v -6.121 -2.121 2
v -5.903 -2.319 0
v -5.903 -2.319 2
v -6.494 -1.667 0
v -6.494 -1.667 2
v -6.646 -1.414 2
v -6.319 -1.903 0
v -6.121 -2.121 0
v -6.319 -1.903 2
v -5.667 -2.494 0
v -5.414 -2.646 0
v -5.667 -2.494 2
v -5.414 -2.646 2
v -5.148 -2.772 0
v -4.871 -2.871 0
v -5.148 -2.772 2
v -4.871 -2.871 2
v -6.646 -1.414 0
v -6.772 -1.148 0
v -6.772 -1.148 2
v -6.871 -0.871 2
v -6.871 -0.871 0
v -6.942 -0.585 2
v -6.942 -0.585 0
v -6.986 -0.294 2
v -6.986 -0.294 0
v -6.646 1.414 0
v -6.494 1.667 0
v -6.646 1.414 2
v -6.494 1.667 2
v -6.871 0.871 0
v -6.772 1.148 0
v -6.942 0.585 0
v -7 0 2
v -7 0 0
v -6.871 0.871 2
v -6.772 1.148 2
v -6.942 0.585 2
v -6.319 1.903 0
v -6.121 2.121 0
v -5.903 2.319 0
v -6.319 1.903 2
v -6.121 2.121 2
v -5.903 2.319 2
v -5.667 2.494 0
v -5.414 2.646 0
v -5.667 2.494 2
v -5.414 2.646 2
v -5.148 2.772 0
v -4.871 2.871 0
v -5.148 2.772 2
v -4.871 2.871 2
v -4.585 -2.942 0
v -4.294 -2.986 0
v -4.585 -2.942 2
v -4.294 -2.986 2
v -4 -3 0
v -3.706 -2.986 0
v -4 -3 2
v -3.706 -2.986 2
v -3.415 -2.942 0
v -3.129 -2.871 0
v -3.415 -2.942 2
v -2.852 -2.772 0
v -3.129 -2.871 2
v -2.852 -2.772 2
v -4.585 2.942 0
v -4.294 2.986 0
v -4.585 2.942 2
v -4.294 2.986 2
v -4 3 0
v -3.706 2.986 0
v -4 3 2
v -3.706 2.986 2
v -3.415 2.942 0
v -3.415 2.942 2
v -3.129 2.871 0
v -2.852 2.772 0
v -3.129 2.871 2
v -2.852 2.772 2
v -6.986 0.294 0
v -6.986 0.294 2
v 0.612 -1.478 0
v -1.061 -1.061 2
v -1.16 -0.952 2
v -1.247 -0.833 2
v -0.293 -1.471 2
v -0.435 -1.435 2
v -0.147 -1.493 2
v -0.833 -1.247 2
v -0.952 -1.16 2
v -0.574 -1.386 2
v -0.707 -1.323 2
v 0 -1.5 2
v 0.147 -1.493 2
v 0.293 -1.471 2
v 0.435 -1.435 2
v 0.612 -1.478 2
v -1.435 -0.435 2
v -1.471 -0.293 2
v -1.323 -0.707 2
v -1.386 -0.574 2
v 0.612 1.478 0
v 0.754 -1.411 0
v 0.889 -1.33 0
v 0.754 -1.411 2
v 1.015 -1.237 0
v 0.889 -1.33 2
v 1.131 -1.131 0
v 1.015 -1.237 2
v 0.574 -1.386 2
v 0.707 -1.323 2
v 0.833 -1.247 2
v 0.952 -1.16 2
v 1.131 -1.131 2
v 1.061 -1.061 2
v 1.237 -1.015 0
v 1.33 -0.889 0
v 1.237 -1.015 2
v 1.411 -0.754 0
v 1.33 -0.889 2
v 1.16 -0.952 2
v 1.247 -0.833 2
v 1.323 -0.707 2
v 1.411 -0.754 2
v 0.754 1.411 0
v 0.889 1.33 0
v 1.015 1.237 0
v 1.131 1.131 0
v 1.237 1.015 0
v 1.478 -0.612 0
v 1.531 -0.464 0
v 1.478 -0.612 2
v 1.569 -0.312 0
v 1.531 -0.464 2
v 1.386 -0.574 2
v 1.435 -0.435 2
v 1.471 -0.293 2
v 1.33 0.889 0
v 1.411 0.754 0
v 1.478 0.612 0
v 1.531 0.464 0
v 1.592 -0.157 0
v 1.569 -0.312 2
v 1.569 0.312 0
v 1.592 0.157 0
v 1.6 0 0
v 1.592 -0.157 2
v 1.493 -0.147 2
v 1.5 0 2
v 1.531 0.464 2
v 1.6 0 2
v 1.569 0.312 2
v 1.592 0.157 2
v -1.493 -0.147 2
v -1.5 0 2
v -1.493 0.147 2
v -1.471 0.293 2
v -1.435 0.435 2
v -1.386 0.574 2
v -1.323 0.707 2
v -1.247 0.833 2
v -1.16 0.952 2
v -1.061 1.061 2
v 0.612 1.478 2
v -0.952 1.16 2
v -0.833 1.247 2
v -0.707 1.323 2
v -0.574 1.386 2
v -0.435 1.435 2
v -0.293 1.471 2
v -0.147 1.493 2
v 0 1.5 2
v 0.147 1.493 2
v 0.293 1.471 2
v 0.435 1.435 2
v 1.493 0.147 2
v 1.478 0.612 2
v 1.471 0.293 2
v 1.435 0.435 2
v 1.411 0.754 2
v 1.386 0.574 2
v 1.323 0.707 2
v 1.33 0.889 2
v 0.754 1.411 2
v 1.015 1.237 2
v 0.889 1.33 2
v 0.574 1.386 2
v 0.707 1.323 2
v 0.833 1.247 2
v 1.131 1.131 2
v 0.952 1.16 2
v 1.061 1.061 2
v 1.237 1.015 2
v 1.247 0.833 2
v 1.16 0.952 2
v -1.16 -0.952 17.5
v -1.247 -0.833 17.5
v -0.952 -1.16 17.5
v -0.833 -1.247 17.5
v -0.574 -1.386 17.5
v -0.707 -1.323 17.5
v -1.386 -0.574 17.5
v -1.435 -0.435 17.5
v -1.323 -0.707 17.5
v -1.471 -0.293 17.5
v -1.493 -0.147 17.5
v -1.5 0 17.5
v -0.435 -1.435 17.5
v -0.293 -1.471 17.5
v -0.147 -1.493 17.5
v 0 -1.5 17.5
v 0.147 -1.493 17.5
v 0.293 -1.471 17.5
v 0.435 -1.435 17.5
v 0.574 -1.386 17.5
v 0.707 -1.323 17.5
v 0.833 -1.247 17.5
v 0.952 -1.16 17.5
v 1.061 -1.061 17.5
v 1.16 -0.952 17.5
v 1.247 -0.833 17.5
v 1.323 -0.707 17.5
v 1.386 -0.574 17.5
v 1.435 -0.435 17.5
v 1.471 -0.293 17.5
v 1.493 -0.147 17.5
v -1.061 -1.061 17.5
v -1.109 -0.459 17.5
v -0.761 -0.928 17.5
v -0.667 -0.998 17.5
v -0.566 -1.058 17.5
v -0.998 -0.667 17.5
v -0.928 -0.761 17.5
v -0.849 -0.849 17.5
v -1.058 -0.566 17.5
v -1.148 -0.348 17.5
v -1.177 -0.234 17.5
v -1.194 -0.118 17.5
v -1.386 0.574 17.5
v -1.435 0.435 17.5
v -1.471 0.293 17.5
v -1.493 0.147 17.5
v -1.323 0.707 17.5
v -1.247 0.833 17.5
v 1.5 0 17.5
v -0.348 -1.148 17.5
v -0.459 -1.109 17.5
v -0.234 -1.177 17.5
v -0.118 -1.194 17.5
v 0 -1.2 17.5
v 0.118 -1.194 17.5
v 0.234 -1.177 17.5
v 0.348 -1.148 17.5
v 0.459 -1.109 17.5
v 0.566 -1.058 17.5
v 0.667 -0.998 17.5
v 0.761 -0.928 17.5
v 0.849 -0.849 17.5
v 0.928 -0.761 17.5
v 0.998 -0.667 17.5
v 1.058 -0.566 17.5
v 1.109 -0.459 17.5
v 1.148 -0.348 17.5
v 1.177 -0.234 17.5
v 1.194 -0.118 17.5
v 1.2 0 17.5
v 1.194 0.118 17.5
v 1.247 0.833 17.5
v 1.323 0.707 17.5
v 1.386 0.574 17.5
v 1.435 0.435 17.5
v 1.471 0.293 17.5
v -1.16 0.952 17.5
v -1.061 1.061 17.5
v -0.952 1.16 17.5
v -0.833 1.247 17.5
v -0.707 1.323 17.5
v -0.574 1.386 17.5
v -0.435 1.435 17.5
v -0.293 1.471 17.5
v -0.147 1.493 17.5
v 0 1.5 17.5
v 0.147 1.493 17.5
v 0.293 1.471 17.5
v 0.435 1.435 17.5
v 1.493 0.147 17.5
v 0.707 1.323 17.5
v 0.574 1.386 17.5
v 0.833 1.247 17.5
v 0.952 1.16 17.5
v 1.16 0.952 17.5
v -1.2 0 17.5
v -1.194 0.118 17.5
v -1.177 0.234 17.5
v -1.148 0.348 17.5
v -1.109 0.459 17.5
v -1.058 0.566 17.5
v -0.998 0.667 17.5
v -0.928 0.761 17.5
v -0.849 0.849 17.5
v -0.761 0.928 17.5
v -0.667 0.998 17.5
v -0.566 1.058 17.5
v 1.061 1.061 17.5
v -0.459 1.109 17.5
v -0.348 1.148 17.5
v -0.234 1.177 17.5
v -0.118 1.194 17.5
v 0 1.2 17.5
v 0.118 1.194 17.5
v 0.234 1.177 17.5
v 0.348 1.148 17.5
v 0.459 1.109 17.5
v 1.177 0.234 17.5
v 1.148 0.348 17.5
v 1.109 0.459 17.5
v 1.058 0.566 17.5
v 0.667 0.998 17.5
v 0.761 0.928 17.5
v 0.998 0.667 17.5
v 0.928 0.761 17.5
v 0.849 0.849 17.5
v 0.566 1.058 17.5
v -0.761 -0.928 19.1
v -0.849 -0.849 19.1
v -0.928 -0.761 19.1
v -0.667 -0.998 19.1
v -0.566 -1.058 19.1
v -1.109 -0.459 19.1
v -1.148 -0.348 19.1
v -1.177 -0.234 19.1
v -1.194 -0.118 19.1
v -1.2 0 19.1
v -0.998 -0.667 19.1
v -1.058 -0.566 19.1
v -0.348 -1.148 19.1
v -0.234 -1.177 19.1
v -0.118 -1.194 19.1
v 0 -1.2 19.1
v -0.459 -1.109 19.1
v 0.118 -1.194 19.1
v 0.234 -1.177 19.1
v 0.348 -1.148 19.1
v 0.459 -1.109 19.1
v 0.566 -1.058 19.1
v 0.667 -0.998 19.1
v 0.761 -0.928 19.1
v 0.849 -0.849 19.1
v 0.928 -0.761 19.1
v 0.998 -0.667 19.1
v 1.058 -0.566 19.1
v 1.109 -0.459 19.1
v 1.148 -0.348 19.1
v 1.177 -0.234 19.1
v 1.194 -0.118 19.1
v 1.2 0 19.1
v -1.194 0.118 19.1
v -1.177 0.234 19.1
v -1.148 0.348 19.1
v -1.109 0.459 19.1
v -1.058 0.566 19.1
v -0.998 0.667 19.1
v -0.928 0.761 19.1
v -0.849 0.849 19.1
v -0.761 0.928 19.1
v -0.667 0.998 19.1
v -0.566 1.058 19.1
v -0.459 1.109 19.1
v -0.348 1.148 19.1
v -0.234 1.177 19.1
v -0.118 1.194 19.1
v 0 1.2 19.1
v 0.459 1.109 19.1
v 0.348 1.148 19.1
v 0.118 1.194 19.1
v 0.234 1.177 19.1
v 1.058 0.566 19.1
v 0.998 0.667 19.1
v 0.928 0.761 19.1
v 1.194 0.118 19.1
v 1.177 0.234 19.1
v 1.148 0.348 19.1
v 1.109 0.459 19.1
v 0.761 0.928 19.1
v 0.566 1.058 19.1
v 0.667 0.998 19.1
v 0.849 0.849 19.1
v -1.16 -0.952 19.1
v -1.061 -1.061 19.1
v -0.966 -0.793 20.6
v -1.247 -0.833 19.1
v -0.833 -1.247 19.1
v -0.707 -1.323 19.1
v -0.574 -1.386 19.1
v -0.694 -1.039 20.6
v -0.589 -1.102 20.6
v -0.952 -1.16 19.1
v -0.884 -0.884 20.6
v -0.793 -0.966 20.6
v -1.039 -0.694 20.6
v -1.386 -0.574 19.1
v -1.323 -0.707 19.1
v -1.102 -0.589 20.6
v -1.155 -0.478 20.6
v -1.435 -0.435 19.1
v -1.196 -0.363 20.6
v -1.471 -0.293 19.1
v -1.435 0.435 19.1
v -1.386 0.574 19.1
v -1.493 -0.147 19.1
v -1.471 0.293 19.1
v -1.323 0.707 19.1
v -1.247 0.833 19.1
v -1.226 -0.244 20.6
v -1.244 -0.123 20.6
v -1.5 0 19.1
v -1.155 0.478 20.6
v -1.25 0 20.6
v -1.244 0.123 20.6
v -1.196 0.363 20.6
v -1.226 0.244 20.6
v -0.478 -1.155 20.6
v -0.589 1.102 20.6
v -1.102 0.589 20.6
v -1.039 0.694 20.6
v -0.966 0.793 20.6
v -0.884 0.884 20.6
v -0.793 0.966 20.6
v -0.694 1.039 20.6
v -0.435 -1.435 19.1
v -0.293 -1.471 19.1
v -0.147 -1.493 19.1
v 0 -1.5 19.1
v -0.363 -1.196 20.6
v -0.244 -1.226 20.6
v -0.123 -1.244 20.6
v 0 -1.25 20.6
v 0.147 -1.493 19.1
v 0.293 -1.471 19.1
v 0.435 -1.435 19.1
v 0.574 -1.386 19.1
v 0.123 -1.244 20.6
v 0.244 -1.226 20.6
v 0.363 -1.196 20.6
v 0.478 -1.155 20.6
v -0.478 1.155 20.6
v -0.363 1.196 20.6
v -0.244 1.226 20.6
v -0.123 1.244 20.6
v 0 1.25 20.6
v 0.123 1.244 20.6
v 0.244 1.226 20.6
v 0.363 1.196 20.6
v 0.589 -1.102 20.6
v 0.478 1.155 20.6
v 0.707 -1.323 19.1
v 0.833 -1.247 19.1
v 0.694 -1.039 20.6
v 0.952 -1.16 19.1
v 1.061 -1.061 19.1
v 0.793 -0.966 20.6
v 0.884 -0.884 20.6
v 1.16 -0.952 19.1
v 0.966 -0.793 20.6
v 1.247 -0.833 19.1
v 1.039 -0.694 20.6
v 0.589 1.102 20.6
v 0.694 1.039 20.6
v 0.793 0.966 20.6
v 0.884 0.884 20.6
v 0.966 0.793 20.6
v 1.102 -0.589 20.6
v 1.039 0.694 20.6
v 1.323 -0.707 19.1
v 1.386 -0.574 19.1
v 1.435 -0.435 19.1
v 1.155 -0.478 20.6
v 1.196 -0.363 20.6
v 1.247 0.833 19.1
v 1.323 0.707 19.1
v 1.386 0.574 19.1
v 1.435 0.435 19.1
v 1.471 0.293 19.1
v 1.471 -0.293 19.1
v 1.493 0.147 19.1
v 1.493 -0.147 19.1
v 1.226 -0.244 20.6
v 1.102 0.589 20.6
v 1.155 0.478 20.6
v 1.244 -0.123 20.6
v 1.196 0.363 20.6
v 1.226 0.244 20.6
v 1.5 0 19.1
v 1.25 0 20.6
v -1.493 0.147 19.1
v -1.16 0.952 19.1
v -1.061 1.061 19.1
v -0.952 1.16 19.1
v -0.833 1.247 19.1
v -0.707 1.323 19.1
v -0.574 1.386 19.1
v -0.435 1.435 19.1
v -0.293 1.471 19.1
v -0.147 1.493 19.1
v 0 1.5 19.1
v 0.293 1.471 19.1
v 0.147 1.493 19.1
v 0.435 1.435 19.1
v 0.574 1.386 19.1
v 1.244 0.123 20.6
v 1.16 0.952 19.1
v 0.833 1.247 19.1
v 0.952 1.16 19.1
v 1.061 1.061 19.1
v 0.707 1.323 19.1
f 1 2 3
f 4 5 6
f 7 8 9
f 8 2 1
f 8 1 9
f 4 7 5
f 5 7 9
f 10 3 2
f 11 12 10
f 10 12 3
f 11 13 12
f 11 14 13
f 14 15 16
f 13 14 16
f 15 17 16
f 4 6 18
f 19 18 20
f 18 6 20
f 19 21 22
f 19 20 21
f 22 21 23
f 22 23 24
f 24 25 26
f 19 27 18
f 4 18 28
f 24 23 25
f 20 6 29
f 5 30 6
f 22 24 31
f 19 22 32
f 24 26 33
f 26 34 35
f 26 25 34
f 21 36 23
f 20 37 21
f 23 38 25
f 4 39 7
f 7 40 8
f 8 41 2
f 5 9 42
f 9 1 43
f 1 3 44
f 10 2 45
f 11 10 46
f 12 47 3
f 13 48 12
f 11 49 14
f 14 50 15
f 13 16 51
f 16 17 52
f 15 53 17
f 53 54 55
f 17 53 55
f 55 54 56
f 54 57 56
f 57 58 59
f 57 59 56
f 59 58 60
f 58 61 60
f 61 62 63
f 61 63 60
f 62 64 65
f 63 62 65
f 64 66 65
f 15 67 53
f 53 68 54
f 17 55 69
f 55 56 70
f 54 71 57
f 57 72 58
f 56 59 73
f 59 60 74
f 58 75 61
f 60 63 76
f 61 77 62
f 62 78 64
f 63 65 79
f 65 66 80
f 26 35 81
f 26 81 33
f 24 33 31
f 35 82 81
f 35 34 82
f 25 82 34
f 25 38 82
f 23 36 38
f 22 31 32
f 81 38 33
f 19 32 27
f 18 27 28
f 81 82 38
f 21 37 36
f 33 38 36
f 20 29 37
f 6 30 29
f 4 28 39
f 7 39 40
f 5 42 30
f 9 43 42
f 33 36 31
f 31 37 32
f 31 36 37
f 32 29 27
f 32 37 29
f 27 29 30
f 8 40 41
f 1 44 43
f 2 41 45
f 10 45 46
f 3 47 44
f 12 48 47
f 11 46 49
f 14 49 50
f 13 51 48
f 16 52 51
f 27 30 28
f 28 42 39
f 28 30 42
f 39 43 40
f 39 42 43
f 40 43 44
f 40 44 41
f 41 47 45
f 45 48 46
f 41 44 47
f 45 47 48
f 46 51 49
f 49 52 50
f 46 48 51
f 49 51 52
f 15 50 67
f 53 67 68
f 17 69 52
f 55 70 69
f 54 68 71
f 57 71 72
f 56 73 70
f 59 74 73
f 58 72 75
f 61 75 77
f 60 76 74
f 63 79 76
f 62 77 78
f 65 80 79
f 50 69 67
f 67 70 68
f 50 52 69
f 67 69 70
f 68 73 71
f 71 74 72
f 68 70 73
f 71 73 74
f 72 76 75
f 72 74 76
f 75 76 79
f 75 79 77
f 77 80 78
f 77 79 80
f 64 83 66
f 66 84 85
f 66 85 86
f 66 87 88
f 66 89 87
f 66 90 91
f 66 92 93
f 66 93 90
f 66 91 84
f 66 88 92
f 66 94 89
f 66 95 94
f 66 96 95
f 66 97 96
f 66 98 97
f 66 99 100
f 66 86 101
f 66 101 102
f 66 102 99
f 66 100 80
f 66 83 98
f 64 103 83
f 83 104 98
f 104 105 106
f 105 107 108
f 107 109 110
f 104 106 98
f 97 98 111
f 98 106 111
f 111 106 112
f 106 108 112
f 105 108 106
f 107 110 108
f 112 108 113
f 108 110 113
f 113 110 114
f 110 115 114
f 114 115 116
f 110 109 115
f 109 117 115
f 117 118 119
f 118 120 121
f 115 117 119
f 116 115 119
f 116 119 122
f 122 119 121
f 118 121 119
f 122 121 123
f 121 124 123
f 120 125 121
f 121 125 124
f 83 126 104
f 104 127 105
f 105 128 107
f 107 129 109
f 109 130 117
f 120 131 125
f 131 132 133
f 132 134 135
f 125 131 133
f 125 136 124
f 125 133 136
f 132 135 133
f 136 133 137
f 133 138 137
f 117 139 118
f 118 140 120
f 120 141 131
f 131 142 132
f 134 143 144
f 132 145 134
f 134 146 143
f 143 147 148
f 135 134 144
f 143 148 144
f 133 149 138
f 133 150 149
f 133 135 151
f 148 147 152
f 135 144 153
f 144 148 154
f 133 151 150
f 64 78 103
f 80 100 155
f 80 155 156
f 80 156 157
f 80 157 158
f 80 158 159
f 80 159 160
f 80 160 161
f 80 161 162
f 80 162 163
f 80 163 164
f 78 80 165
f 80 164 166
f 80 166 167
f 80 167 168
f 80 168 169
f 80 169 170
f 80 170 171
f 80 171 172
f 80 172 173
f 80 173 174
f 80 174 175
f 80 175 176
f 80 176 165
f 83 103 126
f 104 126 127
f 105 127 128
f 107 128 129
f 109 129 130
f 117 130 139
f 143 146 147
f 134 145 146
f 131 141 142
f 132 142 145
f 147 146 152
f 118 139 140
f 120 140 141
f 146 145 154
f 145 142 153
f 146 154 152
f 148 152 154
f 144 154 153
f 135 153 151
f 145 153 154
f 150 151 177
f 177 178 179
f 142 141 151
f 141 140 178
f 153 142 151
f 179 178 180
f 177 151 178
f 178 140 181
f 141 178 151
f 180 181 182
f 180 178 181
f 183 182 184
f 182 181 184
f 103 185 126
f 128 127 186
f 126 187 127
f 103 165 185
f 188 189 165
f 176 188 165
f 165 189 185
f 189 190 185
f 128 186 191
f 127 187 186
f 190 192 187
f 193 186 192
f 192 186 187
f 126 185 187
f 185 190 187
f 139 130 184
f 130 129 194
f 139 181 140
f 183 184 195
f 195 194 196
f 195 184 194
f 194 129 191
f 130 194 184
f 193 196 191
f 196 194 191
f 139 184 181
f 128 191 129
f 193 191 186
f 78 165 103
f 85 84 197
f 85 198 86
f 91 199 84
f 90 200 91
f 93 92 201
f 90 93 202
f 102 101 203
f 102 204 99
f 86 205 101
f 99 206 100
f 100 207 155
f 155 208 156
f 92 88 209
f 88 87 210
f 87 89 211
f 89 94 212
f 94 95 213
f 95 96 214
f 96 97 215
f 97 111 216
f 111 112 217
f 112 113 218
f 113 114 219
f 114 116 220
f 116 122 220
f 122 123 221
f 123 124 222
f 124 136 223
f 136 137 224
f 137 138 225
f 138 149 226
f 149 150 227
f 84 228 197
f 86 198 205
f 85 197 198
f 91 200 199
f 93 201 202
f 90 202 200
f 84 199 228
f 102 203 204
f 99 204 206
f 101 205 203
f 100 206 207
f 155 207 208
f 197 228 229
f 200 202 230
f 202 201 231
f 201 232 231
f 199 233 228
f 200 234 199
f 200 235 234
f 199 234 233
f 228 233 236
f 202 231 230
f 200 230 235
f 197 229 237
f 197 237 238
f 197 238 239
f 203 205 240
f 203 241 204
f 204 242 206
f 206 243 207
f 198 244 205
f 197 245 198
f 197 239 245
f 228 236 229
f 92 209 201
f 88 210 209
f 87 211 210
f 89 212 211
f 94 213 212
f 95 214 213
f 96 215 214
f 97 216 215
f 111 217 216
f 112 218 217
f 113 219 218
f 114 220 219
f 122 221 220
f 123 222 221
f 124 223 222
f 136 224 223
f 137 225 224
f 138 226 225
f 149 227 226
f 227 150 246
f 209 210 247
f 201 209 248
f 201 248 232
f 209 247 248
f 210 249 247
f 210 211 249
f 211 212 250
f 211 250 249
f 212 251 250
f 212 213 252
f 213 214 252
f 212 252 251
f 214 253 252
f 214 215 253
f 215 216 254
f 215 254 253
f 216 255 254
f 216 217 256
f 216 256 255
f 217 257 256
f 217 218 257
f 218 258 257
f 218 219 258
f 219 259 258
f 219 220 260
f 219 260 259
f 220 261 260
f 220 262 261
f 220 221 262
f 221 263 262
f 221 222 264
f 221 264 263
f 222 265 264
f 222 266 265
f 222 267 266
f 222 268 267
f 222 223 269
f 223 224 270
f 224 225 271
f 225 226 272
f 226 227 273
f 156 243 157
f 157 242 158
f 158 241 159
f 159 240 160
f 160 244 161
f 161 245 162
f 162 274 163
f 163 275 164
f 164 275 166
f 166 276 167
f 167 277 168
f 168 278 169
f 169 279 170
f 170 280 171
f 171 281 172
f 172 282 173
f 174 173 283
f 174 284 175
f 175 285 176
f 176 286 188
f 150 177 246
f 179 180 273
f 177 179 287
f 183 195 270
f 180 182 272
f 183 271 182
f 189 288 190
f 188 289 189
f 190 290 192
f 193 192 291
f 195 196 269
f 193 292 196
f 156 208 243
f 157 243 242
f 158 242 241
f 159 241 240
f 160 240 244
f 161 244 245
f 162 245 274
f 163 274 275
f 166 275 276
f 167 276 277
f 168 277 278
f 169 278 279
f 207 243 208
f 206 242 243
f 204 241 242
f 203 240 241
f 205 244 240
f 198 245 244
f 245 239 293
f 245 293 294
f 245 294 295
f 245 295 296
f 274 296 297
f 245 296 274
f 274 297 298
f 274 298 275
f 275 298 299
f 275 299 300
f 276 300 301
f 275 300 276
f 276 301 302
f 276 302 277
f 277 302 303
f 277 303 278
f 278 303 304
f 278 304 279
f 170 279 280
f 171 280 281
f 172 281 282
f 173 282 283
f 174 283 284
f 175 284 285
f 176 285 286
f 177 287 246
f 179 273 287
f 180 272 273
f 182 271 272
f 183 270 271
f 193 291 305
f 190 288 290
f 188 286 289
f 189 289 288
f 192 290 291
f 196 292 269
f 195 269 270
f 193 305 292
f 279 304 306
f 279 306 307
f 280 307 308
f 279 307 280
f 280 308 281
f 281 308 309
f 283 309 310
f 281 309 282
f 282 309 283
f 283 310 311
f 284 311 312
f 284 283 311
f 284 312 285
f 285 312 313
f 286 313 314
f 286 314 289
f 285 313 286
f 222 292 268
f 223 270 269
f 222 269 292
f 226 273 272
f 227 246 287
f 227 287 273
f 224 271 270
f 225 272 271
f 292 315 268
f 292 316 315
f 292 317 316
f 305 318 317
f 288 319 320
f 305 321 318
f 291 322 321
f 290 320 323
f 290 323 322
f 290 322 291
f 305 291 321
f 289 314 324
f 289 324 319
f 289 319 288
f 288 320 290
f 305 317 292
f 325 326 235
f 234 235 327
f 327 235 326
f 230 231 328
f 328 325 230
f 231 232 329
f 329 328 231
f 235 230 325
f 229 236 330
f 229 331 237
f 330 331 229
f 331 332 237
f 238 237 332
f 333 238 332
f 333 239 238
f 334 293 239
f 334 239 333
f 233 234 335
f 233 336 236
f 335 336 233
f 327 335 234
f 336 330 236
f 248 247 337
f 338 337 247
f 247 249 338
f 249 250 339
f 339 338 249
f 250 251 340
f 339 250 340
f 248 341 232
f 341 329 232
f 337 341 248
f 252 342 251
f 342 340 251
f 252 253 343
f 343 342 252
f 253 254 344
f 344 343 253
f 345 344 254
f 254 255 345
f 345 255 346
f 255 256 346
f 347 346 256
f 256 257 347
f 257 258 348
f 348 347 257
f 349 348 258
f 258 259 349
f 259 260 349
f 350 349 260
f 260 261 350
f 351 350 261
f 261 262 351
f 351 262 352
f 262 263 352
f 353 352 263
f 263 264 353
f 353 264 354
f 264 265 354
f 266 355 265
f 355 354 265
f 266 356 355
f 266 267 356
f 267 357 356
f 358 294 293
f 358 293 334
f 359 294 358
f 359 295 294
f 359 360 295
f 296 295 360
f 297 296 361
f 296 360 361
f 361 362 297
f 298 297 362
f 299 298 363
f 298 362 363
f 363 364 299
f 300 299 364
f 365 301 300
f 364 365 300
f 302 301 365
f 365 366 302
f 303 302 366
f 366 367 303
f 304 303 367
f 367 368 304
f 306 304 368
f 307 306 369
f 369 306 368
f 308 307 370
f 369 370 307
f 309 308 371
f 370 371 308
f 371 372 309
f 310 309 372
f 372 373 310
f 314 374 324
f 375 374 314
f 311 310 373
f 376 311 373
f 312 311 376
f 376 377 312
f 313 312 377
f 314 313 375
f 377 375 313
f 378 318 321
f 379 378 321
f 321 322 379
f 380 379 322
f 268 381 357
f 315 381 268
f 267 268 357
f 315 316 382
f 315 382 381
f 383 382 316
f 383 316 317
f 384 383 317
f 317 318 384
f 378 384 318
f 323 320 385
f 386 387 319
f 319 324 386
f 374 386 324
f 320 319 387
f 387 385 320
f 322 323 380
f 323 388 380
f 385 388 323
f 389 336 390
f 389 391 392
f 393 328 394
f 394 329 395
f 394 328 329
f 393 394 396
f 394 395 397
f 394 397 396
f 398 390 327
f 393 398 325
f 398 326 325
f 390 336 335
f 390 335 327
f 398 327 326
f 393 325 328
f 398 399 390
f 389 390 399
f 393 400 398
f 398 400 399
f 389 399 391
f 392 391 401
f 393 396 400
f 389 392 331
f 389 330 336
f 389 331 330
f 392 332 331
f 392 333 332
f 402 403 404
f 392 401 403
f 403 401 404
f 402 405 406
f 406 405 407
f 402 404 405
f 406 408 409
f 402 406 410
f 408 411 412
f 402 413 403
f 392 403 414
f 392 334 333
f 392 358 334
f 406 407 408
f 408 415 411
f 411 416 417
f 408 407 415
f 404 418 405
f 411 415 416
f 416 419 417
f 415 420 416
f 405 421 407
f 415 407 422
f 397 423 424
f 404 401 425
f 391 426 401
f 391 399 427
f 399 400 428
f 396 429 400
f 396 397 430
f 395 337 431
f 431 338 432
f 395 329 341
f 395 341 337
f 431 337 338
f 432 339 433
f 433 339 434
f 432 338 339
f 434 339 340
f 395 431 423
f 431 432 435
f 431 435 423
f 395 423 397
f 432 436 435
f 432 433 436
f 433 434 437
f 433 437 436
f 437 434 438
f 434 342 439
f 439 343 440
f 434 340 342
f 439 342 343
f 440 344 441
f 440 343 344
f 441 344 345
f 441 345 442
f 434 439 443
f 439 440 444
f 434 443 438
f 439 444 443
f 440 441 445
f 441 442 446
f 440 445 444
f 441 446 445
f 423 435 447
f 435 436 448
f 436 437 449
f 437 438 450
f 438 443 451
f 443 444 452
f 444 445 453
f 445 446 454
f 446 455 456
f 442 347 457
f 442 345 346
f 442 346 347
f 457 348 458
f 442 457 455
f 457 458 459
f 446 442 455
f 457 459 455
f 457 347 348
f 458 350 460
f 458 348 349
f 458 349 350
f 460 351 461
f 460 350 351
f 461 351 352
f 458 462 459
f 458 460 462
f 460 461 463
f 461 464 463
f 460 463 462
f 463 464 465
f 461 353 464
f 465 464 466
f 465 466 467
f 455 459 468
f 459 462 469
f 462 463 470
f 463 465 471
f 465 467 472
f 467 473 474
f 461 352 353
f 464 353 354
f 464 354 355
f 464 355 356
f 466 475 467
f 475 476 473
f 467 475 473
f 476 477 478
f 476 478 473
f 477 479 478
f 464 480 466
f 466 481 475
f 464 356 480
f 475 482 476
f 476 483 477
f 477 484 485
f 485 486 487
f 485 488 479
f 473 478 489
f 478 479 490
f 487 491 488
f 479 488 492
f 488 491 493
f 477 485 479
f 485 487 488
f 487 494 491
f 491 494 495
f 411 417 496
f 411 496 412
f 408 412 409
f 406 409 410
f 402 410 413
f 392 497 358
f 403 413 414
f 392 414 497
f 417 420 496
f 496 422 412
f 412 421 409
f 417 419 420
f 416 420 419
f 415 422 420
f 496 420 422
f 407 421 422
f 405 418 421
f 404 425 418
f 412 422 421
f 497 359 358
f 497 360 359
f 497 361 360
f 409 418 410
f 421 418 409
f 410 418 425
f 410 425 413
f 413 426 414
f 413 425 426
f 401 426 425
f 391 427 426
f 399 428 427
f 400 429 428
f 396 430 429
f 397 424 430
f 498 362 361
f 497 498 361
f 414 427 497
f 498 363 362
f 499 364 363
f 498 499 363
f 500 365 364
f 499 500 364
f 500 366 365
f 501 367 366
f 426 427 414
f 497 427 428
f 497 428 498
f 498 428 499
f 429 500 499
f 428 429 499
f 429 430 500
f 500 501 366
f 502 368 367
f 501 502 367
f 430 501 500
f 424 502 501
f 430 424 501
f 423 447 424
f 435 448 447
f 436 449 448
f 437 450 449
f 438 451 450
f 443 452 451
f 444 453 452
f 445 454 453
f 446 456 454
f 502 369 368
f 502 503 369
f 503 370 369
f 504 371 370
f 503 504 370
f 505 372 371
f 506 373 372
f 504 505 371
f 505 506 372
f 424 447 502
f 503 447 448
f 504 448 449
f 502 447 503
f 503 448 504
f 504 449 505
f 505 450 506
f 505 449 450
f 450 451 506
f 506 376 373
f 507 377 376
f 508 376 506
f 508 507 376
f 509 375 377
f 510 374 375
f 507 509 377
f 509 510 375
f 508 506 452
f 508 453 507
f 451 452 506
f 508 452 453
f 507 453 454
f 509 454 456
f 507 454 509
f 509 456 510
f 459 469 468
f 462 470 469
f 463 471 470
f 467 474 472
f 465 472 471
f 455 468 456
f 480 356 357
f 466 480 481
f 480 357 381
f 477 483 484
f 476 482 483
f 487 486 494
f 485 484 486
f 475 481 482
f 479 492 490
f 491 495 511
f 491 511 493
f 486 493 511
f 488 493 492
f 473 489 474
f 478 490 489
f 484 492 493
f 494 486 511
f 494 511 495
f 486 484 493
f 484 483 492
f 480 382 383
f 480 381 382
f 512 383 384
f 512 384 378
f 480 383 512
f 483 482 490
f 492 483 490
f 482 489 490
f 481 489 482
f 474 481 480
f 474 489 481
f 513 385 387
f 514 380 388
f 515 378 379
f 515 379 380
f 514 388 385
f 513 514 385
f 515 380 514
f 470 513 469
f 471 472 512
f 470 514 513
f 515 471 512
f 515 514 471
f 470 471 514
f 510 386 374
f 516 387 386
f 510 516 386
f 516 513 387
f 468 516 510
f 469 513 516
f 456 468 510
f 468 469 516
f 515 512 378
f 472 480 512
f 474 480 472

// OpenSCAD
// EXPERIMENTAL offset-head pin for holder + support + rear plate (15 mm stack).
// Insert from the plate's foot side, with the wide head lobe pointing AWAY
// from the nearest round foot. The C-clip seats on the holder's outer face.
// Prototype hand-fit only; PLA fatigue/retention under motor load unverified.
$fn = 64;

stack_pin_shaft_d = 3.0;
stack_pin_grip = 15.5;
stack_pin_head_h = 2.0;
stack_pin_near_head_d = 3.2; // slim side clears the existing plate foot
stack_pin_lobe_d = 6.0;
stack_pin_lobe_offset = 4.0; // lobe points away from nearest foot
stack_pin_groove_d = 2.4;
stack_pin_groove_h = 1.6;
stack_pin_tip_h = 1.5;

assert(stack_pin_near_head_d > stack_pin_shaft_d);
assert(stack_pin_lobe_offset > stack_pin_lobe_d / 2);

module rear_stack_pin(grip = stack_pin_grip) {
    union() {
        linear_extrude(height = stack_pin_head_h)
            hull() {
                circle(d = stack_pin_near_head_d);
                translate([-stack_pin_lobe_offset, 0])
                    circle(d = stack_pin_lobe_d);
            }
        translate([0, 0, stack_pin_head_h])
            cylinder(d = stack_pin_shaft_d, h = grip);
        translate([0, 0, stack_pin_head_h + grip])
            cylinder(d = stack_pin_groove_d, h = stack_pin_groove_h);
        translate([0, 0, stack_pin_head_h + grip + stack_pin_groove_h])
            cylinder(d1 = stack_pin_shaft_d,
                     d2 = stack_pin_shaft_d - 0.5, h = stack_pin_tip_h);
    }
}

rear_stack_pin();
